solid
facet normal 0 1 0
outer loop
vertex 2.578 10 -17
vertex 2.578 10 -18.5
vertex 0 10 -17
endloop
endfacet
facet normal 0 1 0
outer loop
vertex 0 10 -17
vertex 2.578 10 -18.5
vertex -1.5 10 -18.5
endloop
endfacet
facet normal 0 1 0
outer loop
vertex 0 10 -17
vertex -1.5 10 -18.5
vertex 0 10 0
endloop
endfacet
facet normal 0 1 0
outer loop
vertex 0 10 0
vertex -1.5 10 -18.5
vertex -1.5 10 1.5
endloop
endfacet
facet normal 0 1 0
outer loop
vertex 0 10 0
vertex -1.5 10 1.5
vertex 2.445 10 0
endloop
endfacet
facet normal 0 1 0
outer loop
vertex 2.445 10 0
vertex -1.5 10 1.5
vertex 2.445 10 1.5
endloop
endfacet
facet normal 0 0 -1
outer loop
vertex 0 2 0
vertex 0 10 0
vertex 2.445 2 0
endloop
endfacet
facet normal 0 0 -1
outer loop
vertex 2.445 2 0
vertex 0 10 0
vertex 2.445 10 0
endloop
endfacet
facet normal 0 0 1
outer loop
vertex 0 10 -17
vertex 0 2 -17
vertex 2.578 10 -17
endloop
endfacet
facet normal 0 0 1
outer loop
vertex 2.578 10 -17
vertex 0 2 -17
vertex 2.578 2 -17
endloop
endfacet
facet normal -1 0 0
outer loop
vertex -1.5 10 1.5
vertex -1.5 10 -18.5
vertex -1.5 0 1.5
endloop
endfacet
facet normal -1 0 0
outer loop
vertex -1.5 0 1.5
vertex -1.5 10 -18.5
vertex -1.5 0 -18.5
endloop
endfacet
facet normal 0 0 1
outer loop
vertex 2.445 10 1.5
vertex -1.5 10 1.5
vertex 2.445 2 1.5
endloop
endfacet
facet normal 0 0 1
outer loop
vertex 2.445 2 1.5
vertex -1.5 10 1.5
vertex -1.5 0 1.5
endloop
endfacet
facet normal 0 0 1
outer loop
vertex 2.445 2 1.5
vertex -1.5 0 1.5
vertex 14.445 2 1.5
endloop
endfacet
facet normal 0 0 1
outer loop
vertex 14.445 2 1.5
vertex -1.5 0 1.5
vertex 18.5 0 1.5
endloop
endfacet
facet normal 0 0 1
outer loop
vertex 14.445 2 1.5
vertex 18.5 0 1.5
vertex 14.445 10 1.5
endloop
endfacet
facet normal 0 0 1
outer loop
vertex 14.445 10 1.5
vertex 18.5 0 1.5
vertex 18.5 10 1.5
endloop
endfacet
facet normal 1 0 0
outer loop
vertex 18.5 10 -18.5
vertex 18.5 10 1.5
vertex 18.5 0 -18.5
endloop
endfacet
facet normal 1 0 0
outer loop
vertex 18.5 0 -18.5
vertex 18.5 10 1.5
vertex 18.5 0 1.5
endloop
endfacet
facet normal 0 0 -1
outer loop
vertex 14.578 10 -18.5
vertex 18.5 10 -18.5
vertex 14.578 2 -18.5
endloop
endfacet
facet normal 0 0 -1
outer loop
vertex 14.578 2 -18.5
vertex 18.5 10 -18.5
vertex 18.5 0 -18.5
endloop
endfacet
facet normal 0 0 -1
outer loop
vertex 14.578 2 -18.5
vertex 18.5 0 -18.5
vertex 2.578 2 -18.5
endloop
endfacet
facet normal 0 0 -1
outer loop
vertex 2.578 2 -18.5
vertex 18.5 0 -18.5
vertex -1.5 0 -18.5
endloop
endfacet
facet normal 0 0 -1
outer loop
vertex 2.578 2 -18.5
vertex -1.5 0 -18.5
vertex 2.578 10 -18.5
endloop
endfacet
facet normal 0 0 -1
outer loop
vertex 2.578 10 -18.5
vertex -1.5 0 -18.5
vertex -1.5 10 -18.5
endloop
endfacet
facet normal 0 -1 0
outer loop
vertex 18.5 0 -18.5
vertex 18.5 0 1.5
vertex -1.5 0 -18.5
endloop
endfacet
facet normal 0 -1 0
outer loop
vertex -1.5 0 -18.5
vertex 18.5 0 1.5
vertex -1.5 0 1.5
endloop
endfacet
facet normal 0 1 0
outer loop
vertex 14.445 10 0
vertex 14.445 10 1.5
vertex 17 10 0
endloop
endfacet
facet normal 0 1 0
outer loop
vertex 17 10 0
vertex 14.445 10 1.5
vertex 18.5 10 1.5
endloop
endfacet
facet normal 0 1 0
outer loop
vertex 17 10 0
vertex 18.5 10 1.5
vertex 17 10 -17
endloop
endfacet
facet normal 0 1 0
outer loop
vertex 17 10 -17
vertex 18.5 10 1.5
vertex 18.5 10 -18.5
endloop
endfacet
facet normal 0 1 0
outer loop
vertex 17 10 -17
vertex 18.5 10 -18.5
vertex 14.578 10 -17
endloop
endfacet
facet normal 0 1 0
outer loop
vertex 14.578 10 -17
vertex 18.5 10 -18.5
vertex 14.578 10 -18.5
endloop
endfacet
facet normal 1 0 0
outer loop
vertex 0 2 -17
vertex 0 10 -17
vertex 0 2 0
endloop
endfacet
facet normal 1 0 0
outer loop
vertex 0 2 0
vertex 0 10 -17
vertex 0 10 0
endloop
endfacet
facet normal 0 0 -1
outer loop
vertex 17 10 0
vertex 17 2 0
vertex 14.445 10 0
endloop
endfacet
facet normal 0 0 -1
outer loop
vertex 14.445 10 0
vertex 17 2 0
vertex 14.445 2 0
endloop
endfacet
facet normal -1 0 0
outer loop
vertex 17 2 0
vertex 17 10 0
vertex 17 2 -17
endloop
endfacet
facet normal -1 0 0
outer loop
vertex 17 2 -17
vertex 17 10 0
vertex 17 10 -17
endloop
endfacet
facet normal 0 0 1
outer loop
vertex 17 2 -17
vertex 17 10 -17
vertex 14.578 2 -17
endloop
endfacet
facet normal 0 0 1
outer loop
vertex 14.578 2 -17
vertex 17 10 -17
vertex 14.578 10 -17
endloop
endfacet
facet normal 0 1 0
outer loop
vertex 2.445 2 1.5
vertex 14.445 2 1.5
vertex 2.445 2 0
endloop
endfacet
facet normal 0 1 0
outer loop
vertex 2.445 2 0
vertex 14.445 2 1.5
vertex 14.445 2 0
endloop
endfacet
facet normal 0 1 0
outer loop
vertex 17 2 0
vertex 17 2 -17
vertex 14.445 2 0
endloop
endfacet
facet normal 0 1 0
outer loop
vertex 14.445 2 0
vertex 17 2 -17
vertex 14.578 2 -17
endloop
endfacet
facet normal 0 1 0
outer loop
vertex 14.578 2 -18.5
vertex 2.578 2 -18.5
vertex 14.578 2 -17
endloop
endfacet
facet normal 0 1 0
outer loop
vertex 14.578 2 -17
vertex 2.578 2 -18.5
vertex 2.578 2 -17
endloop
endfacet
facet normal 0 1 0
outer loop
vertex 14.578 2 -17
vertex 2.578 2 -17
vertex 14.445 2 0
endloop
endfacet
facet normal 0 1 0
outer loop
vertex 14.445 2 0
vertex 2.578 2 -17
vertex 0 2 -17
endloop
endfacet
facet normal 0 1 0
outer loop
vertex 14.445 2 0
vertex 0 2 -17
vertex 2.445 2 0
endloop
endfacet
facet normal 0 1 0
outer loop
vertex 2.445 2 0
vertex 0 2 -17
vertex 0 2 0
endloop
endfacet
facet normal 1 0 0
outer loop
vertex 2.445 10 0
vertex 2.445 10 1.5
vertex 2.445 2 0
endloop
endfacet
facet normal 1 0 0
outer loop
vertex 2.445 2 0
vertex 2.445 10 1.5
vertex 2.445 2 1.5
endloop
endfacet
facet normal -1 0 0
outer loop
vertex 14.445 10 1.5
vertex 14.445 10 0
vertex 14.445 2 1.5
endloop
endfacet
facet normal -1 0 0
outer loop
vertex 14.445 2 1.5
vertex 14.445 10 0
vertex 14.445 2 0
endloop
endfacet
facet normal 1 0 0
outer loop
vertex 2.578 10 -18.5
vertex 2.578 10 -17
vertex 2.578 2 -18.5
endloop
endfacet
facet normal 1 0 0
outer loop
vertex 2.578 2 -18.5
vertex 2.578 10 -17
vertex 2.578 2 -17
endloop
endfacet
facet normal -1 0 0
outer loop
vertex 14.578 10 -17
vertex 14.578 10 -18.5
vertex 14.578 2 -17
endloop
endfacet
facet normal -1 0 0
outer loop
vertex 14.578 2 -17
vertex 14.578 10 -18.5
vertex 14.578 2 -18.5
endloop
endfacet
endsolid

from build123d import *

# Parameters (mm, degrees)
SKETCH1_W           = 20
SKETCH1_H           = 20
SKETCH1_W_2         = 17
SKETCH1_H_2         = 17
BOSS_EXTRUDE2_DEPTH = 2
SKETCH1_4_W         = 20
SKETCH1_4_H         = 20
SKETCH1_4_W_2       = 17
SKETCH1_4_H_2       = 17
BOSS_EXTRUDE3_DEPTH = 10
SKETCH2_W           = 12
SKETCH2_H           = 1.5
CUT_EXTRUDE1_DEPTH  = 8


with BuildPart() as part:
    # Sketch1 → Boss-Extrude2 (new body)
    # profile 1 of 2: a face of its own
    with BuildSketch(Plane(origin=(0, 0, 0), x_dir=(1, 0, 0), z_dir=(0, 1, 0))):
        with Locations((8.5, 8.5)):
            Rectangle(SKETCH1_W, SKETCH1_H)
        with Locations((8.5, 8.5)):
            Rectangle(SKETCH1_W_2, SKETCH1_H_2, mode=Mode.SUBTRACT)
    # profile 2 of 2: a face of its own
    with BuildSketch(Plane(origin=(0, 0, 0), x_dir=(1, 0, 0), z_dir=(0, 1, 0))):
        with Locations((8.5, 8.5)):
            Rectangle(SKETCH1_W_2, SKETCH1_H_2)
    extrude(amount=BOSS_EXTRUDE2_DEPTH)

    # Sketch1<4> → Boss-Extrude3 (add)
    with BuildSketch(Plane(origin=(0, 0, 0), x_dir=(1, 0, 0), z_dir=(0, 1, 0))):
        with Locations((8.5, 8.5)):
            Rectangle(SKETCH1_4_W, SKETCH1_4_H)
        with Locations((8.5, 8.5)):
            Rectangle(SKETCH1_4_W_2, SKETCH1_4_H_2, mode=Mode.SUBTRACT)
    extrude(amount=BOSS_EXTRUDE3_DEPTH)

    # Sketch2 → Cut-Extrude1 (cut)
    with BuildSketch(Plane(origin=(0, 10, 0), x_dir=(1, 0, 0), z_dir=(0, 1, 0))):
        with Locations((8.577582313, 17.75)):
            Rectangle(SKETCH2_W, SKETCH2_H)
        with Locations((8.44538549, -0.75)):
            Rectangle(SKETCH2_W, SKETCH2_H)
    extrude(amount=-CUT_EXTRUDE1_DEPTH, mode=Mode.SUBTRACT)


solid = part.part
